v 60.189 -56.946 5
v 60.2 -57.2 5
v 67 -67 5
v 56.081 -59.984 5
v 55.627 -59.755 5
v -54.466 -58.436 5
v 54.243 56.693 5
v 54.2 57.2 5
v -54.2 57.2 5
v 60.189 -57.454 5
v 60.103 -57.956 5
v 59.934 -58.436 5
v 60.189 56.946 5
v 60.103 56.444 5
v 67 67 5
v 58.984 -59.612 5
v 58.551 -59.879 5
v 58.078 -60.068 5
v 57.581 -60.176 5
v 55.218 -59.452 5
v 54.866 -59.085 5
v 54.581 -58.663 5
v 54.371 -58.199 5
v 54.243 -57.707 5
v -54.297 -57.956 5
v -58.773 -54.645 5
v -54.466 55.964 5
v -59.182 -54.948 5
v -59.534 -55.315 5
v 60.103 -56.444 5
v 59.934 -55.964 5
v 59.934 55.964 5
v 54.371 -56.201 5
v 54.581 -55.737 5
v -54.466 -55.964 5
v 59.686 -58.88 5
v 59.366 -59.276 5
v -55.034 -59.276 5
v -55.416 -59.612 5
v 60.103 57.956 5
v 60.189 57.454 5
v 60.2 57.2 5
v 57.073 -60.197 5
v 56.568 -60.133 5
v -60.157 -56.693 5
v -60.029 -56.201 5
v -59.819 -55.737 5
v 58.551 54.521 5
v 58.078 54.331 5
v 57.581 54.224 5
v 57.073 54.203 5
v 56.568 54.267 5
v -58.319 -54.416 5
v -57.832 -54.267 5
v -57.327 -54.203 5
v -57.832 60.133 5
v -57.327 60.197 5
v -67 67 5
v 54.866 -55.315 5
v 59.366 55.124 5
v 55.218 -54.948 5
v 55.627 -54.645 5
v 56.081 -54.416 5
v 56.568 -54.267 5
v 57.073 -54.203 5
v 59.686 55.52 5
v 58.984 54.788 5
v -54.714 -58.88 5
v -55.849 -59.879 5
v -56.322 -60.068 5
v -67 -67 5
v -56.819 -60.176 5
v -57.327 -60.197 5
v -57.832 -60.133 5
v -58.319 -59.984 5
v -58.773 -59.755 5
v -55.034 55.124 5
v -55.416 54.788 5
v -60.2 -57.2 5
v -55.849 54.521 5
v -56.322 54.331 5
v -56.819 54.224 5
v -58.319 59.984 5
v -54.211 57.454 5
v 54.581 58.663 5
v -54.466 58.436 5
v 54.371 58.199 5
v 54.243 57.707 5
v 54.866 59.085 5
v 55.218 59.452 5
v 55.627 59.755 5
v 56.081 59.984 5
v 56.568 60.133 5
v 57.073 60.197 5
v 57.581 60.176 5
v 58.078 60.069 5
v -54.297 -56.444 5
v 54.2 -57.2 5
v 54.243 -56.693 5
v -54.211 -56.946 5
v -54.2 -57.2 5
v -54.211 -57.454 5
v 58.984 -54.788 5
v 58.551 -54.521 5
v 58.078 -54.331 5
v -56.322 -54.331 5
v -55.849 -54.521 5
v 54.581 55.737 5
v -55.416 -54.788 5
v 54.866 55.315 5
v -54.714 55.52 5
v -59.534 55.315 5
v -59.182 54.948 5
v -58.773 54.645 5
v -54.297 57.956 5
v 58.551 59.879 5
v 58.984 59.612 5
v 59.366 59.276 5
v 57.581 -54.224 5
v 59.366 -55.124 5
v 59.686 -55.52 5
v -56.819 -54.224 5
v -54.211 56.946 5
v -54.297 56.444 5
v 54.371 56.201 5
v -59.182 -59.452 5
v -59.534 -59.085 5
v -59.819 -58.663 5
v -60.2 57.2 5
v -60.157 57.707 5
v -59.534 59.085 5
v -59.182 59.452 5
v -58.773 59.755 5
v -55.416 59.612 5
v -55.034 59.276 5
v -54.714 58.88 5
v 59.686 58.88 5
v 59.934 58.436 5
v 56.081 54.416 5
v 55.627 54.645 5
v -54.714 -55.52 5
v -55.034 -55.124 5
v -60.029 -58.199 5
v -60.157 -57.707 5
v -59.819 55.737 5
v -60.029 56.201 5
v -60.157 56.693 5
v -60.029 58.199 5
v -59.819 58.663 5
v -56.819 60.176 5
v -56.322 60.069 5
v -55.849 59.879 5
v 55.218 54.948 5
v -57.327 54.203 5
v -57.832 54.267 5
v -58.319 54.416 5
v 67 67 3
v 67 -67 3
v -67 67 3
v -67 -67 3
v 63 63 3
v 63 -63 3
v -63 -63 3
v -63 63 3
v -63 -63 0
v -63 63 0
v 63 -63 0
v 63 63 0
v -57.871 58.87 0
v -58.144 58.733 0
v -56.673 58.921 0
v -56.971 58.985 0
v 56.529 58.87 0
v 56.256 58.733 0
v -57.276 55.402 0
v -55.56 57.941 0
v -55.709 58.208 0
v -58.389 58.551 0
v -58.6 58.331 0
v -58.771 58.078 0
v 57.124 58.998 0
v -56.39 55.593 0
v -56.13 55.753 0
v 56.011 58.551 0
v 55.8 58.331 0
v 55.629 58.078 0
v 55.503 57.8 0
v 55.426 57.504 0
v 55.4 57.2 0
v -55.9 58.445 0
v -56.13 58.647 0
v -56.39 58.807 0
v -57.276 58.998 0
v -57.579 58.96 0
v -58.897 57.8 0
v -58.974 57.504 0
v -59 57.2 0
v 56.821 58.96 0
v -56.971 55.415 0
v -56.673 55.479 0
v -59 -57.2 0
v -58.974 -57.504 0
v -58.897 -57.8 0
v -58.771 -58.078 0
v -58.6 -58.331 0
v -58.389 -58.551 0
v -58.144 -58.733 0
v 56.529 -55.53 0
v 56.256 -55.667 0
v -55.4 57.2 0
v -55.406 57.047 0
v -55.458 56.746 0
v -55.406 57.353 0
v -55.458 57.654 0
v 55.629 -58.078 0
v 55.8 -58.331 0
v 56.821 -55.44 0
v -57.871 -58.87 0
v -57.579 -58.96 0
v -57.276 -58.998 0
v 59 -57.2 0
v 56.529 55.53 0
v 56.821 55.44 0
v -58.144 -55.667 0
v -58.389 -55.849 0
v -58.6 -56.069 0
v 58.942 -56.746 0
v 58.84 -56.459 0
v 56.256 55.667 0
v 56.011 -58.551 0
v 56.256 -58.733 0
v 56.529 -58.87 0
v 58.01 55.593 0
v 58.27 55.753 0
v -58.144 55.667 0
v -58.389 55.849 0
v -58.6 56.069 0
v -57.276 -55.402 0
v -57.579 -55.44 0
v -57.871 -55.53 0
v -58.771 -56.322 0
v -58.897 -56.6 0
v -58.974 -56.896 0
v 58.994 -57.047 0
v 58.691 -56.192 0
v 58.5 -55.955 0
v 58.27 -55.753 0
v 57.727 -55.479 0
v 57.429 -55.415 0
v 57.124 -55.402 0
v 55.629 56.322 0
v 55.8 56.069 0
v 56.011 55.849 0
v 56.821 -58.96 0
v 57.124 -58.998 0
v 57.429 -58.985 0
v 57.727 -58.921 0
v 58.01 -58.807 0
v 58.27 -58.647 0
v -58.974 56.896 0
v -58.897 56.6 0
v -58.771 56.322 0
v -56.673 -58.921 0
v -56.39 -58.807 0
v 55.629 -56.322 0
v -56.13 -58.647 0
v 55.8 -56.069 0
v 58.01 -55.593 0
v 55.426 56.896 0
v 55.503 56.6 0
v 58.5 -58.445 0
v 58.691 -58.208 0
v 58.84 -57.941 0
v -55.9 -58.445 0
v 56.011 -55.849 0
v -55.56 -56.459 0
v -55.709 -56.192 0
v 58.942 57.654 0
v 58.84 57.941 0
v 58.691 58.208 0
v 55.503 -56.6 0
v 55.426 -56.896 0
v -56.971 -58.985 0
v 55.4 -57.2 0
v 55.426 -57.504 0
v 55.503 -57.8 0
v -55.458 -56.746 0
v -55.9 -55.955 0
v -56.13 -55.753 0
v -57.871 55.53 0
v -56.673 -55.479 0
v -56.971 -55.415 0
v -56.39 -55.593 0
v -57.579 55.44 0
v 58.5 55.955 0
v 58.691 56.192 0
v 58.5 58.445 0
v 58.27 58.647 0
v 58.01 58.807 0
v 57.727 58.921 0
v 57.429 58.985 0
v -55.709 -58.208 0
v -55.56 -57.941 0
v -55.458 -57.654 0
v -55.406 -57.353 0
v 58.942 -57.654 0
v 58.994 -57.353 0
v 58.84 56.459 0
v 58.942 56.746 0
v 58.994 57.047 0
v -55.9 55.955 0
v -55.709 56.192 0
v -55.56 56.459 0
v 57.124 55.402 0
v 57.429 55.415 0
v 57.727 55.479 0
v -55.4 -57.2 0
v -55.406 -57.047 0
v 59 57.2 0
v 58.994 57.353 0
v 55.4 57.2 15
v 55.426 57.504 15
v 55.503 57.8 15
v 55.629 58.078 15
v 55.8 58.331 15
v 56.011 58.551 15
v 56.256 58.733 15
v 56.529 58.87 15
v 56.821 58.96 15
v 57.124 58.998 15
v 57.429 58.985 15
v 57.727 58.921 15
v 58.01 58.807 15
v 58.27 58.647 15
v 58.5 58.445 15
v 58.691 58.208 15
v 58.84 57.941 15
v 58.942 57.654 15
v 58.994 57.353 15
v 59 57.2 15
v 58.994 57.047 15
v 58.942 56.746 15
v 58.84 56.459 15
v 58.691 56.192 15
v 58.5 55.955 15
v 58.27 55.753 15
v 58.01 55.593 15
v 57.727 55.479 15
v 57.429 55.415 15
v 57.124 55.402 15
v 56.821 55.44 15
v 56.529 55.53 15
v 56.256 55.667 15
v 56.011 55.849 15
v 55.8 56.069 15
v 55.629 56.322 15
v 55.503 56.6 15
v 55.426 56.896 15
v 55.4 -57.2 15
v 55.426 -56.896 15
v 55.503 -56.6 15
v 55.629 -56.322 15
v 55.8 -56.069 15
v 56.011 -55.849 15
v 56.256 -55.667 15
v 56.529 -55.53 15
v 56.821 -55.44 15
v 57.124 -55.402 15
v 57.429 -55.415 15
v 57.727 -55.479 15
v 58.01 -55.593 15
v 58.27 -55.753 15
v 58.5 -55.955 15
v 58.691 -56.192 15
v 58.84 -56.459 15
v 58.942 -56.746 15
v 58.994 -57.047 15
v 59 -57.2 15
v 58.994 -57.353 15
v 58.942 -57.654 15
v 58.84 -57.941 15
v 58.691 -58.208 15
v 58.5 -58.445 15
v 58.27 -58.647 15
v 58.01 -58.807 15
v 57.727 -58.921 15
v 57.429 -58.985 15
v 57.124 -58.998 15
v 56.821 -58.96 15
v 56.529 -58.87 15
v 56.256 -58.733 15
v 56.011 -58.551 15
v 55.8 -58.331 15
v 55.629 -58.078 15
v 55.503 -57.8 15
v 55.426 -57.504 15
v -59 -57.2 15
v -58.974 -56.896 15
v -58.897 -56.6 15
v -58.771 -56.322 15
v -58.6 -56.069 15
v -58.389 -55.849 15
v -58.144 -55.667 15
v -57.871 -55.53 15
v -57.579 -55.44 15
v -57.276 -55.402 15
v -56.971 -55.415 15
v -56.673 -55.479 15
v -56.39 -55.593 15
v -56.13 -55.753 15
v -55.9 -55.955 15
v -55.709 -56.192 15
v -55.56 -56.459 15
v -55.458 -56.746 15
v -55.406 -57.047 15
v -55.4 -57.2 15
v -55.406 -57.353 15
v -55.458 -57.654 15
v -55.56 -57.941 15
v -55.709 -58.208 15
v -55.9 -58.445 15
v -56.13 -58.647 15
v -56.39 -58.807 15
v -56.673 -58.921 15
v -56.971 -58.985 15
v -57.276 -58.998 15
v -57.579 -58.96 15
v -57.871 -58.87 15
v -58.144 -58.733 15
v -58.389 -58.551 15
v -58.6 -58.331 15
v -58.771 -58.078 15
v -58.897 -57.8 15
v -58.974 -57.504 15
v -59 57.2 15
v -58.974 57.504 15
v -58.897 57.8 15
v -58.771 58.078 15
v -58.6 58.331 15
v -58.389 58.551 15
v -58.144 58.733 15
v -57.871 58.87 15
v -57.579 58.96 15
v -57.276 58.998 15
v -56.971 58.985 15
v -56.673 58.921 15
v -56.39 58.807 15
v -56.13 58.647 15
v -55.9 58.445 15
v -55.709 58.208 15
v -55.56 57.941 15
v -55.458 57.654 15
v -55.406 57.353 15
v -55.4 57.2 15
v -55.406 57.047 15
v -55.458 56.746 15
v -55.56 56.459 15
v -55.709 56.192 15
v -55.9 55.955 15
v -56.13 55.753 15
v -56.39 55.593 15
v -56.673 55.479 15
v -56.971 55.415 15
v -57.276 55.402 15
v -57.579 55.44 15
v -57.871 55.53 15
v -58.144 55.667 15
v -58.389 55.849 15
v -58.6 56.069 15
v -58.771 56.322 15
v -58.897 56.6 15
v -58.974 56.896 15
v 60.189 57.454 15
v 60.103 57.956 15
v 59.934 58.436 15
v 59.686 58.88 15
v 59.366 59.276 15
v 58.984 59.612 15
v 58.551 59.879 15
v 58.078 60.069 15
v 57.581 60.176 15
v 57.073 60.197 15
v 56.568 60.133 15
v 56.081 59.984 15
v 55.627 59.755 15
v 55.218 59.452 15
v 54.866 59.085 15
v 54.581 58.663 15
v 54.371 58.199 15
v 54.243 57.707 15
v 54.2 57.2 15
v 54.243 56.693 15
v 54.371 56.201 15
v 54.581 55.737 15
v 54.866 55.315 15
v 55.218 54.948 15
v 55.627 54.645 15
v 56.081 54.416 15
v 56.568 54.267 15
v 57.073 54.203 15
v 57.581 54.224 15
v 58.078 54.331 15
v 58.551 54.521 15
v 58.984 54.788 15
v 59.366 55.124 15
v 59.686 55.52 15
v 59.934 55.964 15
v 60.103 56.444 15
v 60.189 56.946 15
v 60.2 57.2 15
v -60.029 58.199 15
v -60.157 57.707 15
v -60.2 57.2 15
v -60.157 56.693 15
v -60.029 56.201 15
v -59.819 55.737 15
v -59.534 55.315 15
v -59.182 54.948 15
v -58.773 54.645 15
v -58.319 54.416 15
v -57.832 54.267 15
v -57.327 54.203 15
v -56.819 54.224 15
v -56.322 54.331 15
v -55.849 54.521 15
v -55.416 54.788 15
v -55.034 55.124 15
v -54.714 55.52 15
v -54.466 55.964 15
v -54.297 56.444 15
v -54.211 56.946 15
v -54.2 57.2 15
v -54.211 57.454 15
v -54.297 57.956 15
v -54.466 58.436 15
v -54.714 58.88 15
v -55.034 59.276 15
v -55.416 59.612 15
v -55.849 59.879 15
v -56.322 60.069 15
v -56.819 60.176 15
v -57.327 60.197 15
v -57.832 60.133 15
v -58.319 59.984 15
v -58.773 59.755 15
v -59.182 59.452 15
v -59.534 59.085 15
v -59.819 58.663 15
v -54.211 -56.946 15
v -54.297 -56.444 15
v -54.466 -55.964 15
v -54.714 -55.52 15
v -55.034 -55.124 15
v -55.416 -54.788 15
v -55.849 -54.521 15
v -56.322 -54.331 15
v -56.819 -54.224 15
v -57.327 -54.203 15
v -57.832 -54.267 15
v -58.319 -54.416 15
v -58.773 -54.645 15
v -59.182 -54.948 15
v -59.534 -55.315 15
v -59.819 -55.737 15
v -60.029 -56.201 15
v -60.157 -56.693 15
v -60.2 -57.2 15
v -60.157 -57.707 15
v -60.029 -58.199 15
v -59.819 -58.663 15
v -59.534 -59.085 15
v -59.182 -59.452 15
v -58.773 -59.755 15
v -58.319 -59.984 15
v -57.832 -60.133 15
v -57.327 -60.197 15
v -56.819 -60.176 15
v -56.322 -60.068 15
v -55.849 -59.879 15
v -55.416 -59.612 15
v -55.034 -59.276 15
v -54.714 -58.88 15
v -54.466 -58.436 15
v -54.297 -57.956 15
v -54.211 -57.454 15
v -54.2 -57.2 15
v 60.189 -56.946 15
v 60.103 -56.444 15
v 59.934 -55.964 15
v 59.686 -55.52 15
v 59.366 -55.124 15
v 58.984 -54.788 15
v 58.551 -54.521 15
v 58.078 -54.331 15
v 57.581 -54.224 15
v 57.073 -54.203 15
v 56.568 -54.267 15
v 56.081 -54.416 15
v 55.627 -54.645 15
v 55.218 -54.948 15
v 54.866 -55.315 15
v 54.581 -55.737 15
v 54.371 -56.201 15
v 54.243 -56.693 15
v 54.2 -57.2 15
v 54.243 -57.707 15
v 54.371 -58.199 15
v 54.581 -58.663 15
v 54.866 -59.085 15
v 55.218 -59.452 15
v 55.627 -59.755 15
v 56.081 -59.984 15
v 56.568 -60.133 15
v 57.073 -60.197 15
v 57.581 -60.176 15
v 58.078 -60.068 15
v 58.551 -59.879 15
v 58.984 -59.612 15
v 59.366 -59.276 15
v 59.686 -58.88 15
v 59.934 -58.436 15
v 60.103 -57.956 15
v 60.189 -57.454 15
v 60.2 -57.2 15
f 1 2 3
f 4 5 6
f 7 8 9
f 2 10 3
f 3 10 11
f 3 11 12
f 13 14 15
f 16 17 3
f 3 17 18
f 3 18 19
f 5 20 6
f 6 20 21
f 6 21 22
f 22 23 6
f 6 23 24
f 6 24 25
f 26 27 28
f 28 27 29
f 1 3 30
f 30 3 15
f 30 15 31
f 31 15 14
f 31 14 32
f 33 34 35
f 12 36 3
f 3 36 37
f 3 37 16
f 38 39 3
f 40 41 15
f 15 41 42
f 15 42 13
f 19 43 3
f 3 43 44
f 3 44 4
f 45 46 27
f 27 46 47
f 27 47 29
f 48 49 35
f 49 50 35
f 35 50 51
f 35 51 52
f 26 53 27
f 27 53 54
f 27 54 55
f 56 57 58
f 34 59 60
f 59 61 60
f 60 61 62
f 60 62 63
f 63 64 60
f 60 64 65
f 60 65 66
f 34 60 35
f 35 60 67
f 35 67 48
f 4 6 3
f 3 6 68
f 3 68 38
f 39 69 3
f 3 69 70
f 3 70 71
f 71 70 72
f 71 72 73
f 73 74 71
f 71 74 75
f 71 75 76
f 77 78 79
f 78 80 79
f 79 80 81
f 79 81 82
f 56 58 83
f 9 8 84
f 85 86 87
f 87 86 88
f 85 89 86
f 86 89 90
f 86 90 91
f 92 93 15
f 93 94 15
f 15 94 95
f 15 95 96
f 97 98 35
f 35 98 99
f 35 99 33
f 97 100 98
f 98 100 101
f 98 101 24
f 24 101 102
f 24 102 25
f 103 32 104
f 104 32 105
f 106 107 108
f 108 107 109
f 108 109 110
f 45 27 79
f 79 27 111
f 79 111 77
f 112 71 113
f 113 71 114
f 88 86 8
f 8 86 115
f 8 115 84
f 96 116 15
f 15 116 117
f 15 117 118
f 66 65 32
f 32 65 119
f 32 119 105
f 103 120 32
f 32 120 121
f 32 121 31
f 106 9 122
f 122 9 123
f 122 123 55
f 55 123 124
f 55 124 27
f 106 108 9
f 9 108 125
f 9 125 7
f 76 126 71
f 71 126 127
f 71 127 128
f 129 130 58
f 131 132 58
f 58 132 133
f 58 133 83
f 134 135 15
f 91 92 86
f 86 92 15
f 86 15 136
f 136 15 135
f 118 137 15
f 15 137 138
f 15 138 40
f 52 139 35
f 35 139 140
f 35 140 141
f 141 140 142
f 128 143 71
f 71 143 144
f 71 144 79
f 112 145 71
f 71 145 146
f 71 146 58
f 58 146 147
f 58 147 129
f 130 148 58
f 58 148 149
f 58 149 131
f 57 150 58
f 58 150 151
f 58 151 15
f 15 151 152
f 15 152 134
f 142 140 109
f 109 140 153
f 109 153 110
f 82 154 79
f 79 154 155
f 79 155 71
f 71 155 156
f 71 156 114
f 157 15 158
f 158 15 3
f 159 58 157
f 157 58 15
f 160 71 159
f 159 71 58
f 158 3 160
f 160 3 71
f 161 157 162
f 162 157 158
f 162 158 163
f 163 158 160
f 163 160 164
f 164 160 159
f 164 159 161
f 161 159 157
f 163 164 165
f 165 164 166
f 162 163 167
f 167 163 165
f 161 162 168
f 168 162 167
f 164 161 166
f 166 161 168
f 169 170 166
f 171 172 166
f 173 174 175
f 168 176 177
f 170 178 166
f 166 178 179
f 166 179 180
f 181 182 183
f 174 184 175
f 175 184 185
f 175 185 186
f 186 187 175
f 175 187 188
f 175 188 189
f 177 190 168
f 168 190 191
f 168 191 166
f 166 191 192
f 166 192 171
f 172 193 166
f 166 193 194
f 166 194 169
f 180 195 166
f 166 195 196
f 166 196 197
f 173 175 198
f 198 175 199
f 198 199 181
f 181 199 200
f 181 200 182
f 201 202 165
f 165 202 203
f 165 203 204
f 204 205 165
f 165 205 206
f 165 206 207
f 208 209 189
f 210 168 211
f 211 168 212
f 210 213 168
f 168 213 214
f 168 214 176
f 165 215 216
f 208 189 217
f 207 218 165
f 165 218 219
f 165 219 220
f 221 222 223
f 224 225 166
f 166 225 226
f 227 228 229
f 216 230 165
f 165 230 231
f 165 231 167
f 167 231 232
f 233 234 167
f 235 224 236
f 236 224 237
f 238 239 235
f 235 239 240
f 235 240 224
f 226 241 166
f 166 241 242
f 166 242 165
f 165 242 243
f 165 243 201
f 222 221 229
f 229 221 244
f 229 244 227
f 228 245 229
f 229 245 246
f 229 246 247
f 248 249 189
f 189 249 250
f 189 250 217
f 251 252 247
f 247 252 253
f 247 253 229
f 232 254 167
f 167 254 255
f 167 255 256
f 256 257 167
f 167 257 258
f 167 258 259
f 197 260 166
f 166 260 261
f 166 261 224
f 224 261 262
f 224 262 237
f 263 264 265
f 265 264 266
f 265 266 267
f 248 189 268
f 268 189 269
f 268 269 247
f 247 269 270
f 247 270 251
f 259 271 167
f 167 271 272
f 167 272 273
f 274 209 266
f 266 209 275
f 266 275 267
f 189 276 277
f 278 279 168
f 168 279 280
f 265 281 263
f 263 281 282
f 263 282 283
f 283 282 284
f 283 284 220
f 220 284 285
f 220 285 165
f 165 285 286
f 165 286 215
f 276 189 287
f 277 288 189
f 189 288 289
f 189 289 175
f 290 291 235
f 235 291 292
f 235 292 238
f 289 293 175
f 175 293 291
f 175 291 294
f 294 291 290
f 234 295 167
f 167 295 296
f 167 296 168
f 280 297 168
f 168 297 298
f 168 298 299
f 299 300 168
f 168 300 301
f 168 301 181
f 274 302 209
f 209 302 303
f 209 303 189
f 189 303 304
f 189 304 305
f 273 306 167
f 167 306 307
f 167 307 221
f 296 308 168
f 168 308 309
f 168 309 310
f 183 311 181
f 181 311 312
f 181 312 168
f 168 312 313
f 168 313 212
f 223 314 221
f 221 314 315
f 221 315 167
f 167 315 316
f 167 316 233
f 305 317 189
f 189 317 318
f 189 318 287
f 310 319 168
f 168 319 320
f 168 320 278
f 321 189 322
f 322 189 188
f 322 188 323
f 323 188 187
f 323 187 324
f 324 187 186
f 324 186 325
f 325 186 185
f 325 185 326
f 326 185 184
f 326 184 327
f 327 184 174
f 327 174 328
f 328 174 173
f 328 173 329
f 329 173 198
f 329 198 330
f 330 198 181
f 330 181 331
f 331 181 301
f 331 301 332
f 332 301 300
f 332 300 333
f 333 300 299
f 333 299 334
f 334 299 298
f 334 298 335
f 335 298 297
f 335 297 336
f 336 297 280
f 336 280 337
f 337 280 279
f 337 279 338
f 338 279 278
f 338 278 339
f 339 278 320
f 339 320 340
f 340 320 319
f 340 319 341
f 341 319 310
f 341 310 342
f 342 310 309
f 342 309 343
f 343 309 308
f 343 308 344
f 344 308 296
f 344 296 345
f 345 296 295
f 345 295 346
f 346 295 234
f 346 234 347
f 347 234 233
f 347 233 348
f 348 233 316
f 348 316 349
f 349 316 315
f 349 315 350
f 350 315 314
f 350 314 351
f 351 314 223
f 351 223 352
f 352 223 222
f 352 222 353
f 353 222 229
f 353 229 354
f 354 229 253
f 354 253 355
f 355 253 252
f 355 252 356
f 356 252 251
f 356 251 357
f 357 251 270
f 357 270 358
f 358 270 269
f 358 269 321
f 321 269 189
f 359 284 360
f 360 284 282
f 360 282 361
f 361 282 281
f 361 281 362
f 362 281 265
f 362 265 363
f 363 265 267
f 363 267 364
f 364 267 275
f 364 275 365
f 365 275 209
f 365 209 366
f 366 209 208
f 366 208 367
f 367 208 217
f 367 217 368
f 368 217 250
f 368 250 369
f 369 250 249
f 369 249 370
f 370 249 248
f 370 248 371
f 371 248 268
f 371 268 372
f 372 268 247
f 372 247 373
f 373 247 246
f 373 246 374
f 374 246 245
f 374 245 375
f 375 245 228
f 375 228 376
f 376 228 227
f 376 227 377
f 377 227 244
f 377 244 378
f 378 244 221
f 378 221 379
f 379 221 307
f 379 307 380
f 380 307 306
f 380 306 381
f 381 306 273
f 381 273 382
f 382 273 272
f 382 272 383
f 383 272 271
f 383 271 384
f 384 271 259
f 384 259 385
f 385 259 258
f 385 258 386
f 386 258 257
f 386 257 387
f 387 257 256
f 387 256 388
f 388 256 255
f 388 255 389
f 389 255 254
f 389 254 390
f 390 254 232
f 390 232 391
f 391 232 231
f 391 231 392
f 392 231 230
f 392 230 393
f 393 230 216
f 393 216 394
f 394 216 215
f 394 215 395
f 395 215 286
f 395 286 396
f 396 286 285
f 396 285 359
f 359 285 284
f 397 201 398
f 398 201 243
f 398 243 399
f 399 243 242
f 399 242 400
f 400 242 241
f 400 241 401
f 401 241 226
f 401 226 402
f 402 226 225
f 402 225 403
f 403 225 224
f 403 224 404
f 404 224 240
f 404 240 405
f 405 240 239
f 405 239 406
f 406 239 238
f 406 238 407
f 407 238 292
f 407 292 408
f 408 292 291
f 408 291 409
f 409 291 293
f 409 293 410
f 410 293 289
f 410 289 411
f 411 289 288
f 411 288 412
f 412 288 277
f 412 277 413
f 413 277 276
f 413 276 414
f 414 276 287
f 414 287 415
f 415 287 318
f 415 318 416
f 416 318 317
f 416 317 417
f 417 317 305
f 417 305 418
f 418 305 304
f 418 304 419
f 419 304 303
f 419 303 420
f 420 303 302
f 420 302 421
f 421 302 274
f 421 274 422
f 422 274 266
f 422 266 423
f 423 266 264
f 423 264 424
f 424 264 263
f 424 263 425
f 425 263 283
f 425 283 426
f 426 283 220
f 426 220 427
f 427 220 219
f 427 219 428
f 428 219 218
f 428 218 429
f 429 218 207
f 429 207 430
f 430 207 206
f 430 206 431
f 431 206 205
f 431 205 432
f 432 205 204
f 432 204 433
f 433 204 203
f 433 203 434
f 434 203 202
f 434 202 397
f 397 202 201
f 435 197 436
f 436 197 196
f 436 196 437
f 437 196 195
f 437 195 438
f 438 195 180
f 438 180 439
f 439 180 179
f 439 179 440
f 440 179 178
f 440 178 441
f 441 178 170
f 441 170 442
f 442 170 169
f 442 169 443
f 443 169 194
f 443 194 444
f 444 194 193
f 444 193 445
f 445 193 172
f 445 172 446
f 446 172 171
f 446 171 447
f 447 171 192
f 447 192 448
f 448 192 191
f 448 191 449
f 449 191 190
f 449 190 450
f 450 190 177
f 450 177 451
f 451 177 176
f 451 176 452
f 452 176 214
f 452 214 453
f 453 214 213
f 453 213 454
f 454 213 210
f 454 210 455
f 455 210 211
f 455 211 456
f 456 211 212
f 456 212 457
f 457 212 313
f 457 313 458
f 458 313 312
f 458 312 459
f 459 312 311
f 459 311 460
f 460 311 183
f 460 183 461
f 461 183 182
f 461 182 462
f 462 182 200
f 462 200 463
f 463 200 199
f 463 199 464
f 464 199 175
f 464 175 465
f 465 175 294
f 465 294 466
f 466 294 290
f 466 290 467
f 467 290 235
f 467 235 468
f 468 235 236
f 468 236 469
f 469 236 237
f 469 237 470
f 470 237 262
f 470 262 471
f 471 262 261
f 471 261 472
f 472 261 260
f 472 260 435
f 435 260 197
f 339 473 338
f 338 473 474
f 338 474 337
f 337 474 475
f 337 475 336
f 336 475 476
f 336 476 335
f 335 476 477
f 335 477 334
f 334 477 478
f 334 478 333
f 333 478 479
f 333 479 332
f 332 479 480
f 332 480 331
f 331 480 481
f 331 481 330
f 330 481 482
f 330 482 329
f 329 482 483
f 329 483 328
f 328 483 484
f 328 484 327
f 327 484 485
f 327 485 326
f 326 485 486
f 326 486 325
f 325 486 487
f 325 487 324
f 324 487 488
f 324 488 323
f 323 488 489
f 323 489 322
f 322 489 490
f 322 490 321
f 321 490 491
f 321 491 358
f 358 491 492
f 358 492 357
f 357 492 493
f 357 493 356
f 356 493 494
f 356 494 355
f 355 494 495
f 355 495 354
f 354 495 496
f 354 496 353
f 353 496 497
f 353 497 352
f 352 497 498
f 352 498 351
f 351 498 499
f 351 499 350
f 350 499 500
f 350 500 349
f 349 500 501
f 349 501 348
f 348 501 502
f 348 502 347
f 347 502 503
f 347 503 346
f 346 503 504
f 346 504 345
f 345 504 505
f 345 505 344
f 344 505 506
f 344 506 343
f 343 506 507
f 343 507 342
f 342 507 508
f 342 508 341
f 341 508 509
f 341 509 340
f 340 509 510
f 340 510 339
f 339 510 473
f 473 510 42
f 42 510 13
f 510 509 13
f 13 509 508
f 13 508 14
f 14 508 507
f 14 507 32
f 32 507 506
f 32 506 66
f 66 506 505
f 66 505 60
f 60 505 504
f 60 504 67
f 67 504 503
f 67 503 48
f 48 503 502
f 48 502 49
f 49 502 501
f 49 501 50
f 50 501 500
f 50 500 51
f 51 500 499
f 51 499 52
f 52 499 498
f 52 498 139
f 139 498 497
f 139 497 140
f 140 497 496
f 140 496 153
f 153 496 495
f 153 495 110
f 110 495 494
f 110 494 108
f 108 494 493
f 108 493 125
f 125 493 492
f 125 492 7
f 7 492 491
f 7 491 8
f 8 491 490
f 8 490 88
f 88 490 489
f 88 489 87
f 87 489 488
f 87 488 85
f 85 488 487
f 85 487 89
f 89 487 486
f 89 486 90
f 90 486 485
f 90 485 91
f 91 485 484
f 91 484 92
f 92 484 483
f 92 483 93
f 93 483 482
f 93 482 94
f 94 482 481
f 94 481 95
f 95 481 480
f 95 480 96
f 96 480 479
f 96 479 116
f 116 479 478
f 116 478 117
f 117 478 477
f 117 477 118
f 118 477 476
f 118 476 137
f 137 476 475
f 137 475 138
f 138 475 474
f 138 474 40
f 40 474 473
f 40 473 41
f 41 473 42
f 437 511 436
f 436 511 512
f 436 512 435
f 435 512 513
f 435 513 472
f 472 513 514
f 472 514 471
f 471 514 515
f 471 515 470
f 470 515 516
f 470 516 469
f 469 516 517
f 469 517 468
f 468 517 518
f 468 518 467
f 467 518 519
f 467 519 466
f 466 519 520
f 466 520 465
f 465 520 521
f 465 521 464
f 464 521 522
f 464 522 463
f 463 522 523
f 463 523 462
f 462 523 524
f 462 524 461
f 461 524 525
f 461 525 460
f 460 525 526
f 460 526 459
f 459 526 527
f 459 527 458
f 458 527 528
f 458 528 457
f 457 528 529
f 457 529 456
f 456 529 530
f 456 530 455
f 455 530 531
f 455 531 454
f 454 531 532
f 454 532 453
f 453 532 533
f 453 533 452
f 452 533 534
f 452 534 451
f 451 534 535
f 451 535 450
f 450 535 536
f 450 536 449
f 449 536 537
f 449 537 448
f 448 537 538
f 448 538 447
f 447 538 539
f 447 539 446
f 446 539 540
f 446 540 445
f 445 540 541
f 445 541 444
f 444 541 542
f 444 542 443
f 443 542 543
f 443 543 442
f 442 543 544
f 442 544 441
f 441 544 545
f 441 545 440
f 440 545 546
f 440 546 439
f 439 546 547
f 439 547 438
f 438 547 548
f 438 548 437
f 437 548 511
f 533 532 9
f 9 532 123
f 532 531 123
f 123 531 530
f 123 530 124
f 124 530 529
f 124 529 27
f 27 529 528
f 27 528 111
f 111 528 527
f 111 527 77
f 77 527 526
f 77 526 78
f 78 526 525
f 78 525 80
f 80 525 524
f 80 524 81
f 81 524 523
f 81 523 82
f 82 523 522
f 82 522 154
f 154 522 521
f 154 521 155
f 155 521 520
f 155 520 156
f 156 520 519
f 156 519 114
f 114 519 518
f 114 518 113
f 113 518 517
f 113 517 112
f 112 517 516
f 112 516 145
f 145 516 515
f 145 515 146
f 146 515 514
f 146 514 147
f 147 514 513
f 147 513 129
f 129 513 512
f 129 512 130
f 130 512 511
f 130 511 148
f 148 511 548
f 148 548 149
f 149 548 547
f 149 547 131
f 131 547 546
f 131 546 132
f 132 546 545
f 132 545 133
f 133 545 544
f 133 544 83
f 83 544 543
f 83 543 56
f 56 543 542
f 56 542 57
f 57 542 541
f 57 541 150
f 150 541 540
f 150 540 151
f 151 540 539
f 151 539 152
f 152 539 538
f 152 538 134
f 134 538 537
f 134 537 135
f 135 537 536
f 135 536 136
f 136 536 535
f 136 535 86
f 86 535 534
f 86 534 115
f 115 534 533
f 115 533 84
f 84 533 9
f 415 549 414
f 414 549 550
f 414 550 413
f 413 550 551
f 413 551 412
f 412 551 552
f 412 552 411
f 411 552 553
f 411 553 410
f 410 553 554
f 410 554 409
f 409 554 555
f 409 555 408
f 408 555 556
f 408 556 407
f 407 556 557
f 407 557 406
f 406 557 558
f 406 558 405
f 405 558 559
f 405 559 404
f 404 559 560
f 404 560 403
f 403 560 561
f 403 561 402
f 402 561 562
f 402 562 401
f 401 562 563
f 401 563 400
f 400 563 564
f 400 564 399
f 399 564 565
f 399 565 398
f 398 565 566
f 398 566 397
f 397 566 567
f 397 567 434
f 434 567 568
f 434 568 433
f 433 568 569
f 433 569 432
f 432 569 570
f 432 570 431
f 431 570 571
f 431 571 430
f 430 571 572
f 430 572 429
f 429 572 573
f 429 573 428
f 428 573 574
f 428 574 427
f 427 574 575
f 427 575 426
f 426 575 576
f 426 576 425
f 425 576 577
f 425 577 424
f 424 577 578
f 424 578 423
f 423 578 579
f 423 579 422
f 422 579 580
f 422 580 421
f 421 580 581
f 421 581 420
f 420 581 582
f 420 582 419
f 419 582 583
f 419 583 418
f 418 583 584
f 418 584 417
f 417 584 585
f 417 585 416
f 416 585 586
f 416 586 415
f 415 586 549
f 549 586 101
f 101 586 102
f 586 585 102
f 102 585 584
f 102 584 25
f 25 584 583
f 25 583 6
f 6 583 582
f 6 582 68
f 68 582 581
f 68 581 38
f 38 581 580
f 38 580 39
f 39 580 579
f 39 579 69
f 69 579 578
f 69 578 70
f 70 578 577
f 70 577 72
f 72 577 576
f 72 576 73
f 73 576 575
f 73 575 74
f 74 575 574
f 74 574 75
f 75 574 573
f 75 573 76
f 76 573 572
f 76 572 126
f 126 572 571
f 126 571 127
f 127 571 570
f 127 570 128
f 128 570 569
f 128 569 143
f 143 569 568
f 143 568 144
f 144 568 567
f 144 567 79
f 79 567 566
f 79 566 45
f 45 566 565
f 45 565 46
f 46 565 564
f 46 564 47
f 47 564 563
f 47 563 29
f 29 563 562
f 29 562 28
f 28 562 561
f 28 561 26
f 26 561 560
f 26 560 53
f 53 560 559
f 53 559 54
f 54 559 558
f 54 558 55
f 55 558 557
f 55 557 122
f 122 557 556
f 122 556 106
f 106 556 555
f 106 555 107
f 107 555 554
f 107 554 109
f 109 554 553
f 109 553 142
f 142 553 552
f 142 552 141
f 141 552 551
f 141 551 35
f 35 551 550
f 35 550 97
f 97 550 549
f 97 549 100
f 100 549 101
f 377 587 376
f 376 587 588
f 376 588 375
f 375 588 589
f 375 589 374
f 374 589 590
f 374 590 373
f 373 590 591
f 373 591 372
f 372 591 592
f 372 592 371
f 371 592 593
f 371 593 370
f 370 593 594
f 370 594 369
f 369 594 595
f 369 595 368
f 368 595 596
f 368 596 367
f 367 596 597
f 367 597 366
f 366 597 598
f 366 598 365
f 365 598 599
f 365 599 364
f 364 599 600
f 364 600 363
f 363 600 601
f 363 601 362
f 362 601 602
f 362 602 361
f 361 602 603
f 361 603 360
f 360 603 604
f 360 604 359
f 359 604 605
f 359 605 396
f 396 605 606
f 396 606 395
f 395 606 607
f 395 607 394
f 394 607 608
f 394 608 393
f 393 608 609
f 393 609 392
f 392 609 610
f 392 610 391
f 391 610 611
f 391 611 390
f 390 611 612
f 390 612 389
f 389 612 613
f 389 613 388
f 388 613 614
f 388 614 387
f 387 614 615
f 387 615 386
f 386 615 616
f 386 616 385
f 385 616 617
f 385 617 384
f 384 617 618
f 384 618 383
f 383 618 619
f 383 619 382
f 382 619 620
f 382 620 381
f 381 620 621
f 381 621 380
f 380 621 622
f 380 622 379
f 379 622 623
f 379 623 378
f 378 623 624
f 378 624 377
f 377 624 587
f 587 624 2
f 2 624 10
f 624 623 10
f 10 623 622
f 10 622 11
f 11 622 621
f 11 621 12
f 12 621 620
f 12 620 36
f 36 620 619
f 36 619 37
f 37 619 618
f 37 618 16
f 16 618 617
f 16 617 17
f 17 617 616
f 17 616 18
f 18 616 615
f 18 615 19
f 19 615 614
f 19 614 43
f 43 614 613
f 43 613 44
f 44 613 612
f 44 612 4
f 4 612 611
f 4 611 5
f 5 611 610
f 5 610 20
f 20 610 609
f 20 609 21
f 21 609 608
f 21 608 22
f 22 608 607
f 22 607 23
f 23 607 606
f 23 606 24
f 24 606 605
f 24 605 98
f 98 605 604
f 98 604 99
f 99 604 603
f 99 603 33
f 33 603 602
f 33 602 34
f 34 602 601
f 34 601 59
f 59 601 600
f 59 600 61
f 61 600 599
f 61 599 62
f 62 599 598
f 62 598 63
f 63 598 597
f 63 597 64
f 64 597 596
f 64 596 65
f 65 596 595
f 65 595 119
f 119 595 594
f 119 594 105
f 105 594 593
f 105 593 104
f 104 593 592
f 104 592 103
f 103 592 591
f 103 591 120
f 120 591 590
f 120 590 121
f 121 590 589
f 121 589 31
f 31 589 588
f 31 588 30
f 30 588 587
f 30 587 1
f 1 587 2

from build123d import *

# Parameters (mm, degrees)
ESQUISSE1_W             = 134
ESQUISSE1_H             = 134
BOSS_EXTRU_1_DEPTH      = 5
ESQUISSE5_W             = 134
ESQUISSE5_H             = 134
ESQUISSE5_W_2           = 126
ESQUISSE5_H_2           = 126
ENL_V_MAT_EXTRU_1_DEPTH = 3
ESQUISSE6_R             = 1.8
ENL_V_MAT_EXTRU_2_DEPTH = 6
ESQUISSE7_R             = 3
ESQUISSE7_R_2           = 1.8
BOSS_EXTRU_2_DEPTH      = 15
ESQUISSE8_R             = 3
ESQUISSE8_R_2           = 1.8
BOSS_EXTRU_3_DEPTH      = 15
ESQUISSE9_R             = 3
ESQUISSE9_R_2           = 1.8
BOSS_EXTRU_6_DEPTH      = 15
ESQUISSE10_R            = 3
ESQUISSE10_R_2          = 1.8
BOSS_EXTRU_7_DEPTH      = 15


with BuildPart() as part:
    # Esquisse1 → Boss.-Extru.1 (new body)
    with BuildSketch(Plane.XY):
        Rectangle(ESQUISSE1_W, ESQUISSE1_H)
    extrude(amount=BOSS_EXTRU_1_DEPTH)

    # Esquisse5 → Enlèv. mat.-Extru.1 (cut)
    with BuildSketch(Plane.XY):
        Rectangle(ESQUISSE5_W, ESQUISSE5_H)
        Rectangle(ESQUISSE5_W_2, ESQUISSE5_H_2, mode=Mode.SUBTRACT)
    extrude(amount=ENL_V_MAT_EXTRU_1_DEPTH, mode=Mode.SUBTRACT)

    # Esquisse6 → Enlèv. mat.-Extru.2 (cut)
    with BuildSketch(Plane.XY):
        with Locations((57.2, 57.2)):
            Circle(ESQUISSE6_R)
        with Locations((57.2, -57.2)):
            Circle(ESQUISSE6_R)
        with Locations((-57.2, -57.2)):
            Circle(ESQUISSE6_R)
        with Locations((-57.2, 57.2)):
            Circle(ESQUISSE6_R)
    extrude(amount=ENL_V_MAT_EXTRU_2_DEPTH, mode=Mode.SUBTRACT)

    # Esquisse7 → Boss.-Extru.2 (add)
    with BuildSketch(Plane.XY):
        with Locations((57.2, 57.2)):
            Circle(ESQUISSE7_R)
        with Locations((57.2, 57.2)):
            Circle(ESQUISSE7_R_2, mode=Mode.SUBTRACT)
    extrude(amount=BOSS_EXTRU_2_DEPTH)

    # Esquisse8 → Boss.-Extru.3 (add)
    with BuildSketch(Plane.XY):
        with Locations((-57.2, 57.2)):
            Circle(ESQUISSE8_R)
        with Locations((-57.2, 57.2)):
            Circle(ESQUISSE8_R_2, mode=Mode.SUBTRACT)
    extrude(amount=BOSS_EXTRU_3_DEPTH)

    # Esquisse9 → Boss.-Extru.6 (add)
    with BuildSketch(Plane.XY):
        with Locations((-57.2, -57.2)):
            Circle(ESQUISSE9_R)
        with Locations((-57.2, -57.2)):
            Circle(ESQUISSE9_R_2, mode=Mode.SUBTRACT)
    extrude(amount=BOSS_EXTRU_6_DEPTH)

    # Esquisse10 → Boss.-Extru.7 (add)
    with BuildSketch(Plane.XY):
        with Locations((57.2, -57.2)):
            Circle(ESQUISSE10_R)
        with Locations((57.2, -57.2)):
            Circle(ESQUISSE10_R_2, mode=Mode.SUBTRACT)
    extrude(amount=BOSS_EXTRU_7_DEPTH)


solid = part.part
